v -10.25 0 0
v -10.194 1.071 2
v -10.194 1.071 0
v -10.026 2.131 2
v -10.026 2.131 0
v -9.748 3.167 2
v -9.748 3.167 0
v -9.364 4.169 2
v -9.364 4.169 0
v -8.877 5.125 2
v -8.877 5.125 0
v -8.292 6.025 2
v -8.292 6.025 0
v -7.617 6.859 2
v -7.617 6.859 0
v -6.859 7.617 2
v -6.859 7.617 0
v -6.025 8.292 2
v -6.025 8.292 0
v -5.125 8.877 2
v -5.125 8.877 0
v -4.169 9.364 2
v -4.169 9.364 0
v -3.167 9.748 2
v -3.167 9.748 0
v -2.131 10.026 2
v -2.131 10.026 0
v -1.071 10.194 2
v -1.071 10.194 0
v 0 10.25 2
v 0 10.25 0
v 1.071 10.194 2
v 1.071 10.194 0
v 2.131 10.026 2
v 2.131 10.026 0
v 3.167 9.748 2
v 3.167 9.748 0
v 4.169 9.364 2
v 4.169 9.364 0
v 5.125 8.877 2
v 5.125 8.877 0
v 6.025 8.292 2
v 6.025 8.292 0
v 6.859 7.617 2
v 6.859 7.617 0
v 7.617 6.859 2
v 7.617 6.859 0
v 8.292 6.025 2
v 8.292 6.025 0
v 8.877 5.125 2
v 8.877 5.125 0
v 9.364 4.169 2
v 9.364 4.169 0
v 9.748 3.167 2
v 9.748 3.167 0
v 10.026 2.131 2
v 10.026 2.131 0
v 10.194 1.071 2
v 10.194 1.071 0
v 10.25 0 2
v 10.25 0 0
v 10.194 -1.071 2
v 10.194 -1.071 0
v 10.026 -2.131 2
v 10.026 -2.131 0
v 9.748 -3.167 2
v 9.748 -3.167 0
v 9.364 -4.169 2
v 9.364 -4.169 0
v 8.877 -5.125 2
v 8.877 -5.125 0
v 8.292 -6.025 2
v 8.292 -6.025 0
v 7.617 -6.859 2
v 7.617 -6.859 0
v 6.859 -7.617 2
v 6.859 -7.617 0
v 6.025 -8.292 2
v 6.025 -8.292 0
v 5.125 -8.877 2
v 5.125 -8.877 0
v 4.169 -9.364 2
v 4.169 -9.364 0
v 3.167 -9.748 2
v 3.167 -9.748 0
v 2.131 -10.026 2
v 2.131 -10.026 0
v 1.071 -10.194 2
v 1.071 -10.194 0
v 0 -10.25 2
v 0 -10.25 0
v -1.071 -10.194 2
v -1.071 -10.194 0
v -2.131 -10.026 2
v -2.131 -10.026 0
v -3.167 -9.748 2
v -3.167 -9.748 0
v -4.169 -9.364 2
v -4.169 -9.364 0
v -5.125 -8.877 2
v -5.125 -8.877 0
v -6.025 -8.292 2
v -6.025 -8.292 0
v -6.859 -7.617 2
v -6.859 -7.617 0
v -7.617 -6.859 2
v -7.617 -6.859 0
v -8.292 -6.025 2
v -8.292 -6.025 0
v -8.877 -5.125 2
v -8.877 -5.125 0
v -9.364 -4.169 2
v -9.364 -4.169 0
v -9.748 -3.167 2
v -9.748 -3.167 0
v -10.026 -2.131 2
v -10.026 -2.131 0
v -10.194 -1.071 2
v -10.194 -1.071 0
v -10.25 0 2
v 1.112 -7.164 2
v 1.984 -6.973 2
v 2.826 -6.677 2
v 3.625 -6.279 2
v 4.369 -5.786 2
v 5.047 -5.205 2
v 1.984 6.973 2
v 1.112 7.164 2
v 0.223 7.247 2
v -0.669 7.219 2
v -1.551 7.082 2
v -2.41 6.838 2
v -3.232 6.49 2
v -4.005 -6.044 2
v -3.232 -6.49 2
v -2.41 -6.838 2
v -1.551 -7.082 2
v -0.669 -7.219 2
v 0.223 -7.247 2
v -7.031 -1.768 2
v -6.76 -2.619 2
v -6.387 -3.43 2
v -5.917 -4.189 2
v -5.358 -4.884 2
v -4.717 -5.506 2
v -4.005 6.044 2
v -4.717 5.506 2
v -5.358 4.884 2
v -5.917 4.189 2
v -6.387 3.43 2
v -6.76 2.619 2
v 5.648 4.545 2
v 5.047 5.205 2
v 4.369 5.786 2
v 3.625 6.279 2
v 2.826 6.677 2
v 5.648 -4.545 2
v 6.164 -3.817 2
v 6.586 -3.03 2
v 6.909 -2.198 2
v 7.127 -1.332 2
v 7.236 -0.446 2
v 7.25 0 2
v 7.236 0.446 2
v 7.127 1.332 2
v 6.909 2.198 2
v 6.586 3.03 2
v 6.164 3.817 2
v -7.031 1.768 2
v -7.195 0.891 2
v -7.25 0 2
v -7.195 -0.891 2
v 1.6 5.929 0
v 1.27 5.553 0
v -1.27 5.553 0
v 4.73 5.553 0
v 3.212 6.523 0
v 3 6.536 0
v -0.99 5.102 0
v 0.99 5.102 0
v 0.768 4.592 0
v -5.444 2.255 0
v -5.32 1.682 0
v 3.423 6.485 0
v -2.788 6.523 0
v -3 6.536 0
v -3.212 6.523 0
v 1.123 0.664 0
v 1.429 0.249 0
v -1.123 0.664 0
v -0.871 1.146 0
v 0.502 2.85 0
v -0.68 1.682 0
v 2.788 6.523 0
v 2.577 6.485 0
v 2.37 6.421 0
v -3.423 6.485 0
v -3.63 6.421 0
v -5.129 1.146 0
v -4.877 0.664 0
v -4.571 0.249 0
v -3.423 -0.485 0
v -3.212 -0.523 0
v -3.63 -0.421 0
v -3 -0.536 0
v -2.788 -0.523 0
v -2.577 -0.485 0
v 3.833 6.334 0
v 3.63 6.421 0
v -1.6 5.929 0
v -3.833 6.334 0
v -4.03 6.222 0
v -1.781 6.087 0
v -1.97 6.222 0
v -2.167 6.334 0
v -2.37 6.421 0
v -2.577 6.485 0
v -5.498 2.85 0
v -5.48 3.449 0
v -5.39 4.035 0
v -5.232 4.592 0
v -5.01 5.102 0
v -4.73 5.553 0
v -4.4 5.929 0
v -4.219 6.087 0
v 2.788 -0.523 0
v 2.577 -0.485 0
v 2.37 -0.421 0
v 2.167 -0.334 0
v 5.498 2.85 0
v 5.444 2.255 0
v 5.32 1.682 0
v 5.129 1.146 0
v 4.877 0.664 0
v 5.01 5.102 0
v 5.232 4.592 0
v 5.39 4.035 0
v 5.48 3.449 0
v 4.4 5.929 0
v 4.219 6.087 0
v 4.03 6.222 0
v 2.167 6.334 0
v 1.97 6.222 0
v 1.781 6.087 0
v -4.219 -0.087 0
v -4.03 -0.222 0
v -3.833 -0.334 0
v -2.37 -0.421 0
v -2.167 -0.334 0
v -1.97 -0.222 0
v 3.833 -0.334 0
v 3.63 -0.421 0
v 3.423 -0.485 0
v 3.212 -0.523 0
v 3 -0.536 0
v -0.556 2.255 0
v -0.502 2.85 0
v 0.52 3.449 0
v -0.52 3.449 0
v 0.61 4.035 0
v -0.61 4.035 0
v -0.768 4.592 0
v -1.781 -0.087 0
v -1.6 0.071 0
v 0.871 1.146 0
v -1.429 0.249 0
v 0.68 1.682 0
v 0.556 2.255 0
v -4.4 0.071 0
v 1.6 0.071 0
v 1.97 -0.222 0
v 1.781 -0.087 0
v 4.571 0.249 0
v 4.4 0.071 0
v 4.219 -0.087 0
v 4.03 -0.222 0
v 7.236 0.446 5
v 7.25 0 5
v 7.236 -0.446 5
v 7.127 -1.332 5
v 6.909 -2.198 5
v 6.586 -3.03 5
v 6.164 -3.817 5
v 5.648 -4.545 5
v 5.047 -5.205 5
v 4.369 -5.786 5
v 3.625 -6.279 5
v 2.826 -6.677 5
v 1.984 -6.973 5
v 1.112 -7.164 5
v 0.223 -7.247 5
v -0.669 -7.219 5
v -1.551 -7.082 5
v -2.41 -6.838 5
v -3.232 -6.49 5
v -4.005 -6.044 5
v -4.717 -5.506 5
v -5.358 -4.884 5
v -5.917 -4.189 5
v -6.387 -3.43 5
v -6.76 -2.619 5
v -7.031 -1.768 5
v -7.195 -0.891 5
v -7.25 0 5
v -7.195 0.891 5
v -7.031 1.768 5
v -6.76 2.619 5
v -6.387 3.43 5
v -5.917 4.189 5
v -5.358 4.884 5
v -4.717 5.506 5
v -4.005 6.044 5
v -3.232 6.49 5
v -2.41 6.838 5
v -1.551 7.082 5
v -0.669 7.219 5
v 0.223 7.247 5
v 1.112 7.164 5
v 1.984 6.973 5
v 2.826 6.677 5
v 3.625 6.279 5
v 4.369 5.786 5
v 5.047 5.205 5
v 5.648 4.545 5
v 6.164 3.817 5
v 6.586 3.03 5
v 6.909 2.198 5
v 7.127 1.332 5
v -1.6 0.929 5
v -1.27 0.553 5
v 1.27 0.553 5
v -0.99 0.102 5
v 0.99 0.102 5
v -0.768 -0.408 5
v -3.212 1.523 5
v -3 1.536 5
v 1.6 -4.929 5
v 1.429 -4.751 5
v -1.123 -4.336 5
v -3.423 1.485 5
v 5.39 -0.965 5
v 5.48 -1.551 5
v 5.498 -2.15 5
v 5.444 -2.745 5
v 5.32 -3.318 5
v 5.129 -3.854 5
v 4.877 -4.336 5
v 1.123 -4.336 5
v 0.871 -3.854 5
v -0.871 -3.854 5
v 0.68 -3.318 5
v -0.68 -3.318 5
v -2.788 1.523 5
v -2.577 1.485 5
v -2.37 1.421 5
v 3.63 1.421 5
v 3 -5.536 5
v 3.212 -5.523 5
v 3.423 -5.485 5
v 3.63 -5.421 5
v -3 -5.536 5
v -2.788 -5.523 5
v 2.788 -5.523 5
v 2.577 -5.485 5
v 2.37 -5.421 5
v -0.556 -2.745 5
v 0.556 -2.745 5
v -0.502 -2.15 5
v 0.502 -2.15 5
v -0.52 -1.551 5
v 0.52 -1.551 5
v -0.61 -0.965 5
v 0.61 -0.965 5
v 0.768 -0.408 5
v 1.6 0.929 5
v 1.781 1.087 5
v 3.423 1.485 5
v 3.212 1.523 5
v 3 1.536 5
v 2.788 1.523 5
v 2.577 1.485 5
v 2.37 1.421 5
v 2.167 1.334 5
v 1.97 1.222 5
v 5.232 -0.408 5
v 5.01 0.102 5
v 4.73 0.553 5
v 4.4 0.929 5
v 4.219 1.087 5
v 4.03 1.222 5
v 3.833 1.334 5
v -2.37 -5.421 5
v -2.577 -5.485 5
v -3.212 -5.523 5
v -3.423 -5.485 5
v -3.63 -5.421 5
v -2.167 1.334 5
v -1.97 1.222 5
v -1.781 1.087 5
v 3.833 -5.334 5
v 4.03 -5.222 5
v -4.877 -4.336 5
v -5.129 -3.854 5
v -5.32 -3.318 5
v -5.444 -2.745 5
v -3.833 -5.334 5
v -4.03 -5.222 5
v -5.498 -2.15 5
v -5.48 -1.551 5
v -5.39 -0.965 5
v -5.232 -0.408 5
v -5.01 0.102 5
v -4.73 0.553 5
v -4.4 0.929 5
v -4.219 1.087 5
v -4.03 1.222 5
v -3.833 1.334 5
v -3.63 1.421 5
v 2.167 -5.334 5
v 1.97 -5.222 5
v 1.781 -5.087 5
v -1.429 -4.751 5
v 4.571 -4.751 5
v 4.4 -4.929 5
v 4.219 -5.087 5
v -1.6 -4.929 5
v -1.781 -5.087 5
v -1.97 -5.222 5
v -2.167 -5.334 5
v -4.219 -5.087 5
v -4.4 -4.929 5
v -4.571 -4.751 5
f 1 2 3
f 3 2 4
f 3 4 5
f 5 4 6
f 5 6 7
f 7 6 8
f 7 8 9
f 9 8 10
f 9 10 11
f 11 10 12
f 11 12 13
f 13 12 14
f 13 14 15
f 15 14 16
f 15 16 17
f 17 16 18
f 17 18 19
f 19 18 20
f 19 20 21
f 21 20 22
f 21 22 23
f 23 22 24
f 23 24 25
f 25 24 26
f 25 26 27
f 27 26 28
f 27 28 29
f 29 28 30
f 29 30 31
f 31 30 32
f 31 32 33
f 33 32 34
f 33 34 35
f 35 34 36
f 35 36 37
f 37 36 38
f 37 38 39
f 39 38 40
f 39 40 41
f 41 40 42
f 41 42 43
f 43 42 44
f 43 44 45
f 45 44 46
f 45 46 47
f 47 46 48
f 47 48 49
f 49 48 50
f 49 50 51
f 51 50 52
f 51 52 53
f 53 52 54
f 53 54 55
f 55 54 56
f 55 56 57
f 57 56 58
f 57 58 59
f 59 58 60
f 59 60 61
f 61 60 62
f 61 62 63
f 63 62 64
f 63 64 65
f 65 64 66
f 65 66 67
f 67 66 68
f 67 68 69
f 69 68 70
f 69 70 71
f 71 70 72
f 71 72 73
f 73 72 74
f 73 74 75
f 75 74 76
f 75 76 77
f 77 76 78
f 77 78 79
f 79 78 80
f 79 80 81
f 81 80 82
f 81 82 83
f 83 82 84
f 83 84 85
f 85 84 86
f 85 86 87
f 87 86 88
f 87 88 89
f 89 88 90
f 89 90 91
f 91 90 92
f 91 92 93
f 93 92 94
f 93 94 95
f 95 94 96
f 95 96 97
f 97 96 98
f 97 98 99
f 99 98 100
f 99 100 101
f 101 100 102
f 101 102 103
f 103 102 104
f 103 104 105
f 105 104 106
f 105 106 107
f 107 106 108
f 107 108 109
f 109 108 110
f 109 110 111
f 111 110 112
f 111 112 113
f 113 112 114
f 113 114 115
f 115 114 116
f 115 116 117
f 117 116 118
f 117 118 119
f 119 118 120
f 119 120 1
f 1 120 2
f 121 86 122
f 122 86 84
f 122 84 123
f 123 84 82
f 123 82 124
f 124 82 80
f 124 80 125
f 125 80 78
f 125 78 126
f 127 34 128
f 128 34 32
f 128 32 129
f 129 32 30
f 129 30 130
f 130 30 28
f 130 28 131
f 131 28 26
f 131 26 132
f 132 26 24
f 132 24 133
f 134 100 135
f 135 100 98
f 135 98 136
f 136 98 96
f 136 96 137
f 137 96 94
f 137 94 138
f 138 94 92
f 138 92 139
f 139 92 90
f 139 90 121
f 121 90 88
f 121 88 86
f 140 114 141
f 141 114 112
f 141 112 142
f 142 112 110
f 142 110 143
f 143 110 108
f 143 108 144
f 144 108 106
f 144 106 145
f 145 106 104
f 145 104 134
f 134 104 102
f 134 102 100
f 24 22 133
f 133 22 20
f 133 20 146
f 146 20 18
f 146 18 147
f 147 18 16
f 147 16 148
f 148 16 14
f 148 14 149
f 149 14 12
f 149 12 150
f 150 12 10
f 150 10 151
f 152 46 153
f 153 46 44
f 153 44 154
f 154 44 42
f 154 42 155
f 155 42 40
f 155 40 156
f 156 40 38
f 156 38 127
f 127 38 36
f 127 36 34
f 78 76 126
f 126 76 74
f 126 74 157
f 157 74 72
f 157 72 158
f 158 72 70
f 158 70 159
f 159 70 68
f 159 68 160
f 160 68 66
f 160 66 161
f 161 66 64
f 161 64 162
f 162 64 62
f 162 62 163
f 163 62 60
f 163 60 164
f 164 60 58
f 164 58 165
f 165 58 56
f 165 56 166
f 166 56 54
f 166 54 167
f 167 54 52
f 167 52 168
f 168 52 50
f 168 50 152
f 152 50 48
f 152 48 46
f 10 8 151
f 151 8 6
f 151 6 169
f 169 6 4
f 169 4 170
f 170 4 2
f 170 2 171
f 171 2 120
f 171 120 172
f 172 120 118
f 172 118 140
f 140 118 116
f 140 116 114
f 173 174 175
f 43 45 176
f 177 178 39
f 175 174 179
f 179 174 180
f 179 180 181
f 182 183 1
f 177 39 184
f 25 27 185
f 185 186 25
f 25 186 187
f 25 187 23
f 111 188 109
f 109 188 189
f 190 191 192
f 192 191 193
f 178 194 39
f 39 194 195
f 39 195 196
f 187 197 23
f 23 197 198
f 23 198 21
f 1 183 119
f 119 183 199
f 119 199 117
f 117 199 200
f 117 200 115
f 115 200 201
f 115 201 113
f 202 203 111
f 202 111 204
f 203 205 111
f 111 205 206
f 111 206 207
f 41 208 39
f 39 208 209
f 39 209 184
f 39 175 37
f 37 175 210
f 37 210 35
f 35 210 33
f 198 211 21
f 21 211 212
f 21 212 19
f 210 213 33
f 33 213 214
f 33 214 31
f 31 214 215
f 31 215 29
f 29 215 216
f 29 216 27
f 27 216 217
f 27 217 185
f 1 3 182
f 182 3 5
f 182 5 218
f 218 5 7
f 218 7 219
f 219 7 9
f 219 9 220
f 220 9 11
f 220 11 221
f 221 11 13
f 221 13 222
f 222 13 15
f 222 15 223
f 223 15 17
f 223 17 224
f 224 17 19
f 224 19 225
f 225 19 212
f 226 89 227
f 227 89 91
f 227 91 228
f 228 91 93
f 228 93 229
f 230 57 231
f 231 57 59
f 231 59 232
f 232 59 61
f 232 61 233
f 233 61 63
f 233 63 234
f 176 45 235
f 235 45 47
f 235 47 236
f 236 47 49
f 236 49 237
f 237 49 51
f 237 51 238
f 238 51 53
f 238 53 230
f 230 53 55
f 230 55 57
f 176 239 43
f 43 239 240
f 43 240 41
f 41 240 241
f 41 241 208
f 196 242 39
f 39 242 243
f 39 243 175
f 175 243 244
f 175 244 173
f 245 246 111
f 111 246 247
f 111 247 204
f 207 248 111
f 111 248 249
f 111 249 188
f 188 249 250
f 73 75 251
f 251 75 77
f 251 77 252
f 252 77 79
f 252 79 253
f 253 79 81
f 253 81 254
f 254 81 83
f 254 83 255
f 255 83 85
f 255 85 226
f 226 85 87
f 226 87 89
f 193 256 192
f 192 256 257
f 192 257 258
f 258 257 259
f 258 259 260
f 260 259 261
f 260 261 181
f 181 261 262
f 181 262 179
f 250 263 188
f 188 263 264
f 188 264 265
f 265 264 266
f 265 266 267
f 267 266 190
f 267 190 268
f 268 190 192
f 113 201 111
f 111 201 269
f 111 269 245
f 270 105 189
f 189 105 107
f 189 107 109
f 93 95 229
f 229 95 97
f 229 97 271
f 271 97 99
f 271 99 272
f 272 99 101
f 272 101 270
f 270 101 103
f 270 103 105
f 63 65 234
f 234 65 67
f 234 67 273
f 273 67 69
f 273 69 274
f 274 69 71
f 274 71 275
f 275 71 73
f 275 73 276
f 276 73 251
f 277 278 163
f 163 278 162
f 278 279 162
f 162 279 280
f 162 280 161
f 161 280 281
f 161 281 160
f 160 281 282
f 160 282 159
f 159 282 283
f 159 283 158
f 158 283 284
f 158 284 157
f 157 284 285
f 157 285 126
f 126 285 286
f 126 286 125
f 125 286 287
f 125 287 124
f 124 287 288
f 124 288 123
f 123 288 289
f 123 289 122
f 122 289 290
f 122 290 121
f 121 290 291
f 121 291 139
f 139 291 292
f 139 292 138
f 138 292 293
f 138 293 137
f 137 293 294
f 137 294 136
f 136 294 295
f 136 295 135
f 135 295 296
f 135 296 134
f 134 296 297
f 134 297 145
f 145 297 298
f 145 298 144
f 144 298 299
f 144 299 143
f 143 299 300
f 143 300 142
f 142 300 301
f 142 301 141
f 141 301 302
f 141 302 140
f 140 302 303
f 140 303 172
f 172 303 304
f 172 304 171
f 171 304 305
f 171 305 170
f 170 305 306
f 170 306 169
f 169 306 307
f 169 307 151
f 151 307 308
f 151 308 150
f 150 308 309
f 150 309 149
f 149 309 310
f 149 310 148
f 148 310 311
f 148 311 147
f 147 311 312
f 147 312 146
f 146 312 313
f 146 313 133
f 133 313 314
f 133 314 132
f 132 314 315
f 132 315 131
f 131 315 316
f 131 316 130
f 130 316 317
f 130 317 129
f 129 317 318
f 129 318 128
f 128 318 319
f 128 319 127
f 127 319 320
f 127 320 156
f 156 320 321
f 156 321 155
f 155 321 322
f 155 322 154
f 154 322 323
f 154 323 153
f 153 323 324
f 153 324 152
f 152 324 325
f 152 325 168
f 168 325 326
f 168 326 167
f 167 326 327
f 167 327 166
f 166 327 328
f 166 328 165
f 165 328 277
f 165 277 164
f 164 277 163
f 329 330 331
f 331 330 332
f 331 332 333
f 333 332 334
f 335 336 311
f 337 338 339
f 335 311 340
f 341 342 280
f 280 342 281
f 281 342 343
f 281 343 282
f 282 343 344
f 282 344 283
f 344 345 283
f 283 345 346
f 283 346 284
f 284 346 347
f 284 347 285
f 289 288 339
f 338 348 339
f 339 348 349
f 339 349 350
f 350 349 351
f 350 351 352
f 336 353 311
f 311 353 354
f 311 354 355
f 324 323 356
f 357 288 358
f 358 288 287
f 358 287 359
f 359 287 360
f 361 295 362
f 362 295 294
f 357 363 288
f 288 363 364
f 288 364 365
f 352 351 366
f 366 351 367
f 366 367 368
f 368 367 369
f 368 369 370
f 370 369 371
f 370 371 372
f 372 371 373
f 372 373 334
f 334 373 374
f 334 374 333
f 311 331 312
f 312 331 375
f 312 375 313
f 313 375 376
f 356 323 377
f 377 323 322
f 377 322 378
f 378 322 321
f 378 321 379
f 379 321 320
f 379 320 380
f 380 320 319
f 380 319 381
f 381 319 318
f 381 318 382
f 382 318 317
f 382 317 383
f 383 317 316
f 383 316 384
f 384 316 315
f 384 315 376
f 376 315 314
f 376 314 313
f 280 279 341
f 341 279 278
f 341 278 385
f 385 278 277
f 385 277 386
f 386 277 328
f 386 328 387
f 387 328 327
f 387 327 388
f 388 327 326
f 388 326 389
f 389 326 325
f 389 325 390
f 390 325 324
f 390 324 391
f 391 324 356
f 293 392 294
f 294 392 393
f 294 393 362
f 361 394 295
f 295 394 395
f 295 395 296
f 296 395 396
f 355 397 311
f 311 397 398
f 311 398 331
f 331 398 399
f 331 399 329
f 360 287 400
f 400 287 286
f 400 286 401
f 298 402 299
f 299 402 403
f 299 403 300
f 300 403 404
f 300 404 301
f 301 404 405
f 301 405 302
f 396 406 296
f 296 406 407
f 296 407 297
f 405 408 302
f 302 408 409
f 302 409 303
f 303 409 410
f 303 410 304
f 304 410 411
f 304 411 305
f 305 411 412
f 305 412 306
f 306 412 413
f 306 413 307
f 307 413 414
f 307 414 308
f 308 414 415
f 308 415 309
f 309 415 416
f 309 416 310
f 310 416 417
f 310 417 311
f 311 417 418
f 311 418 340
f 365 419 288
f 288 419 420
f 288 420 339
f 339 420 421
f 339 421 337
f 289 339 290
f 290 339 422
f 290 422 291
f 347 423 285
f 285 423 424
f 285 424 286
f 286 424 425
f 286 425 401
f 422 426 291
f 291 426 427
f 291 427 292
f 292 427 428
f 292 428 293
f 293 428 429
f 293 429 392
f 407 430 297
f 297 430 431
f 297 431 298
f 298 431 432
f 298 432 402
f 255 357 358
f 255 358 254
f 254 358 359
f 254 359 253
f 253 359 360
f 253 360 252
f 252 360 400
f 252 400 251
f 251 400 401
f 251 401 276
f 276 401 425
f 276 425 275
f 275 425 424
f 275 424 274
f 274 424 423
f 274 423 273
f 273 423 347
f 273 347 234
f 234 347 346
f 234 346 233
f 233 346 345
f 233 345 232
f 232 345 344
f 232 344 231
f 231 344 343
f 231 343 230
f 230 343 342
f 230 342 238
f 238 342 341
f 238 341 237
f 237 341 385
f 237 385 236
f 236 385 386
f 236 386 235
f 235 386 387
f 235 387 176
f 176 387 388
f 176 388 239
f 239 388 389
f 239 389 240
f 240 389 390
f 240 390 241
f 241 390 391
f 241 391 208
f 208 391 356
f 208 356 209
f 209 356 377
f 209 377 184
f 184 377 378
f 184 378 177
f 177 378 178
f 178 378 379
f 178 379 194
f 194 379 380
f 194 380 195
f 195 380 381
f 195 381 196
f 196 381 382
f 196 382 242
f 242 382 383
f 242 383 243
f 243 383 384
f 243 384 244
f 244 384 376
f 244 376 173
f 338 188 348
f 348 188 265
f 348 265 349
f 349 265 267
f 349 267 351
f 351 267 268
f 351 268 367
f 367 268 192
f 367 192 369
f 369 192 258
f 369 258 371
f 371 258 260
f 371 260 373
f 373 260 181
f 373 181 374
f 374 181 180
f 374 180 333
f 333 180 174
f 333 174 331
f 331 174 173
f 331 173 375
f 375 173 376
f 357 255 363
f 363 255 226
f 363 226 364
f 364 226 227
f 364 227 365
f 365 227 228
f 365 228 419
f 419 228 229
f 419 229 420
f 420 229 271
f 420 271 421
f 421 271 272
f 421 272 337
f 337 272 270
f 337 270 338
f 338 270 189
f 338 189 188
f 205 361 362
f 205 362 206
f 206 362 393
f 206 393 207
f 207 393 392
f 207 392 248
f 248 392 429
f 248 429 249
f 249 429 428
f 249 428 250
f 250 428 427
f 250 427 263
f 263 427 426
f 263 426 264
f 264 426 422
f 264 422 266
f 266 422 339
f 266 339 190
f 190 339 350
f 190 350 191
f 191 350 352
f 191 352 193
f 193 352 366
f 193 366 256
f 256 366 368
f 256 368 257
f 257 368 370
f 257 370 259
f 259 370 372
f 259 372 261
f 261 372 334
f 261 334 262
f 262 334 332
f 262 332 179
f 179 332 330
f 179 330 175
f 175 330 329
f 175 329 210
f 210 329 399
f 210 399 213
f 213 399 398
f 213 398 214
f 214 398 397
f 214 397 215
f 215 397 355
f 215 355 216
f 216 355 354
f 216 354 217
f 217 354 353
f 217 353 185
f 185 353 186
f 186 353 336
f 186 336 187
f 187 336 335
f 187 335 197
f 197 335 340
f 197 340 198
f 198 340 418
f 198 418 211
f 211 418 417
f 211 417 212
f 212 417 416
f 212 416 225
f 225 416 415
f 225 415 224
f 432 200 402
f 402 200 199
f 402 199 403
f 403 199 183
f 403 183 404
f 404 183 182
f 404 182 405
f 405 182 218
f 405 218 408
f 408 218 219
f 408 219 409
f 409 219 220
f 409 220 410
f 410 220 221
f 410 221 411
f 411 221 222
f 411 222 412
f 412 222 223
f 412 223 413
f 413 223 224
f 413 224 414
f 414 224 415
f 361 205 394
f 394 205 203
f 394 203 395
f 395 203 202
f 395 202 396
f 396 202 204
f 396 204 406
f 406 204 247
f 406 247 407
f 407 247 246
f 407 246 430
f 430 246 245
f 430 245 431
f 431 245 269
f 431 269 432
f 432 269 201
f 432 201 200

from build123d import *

# Parameters (mm, degrees)
OUTER_SKETCH_R                = 10.25
OUTER_DEPTH                   = 2
INNER_SKETCH_R                = 7.25
INNER_DEPTH                   = 3
ODEBRAT_VYSUNUT_M2_DEPTH      = 15.746272134
ODEBRAT_VYSUNUT_M2_DEPTH_BACK = 15.746272134
SKICA8_R                      = 2.5


with BuildPart() as part:
    # Outer sketch → Outer (new body)
    with BuildSketch(Plane.XY):
        Circle(OUTER_SKETCH_R)
    extrude(amount=OUTER_DEPTH)

    # Inner sketch → Inner (add)
    with BuildSketch(Plane.XY.offset(2)):
        Circle(INNER_SKETCH_R)
    extrude(amount=INNER_DEPTH)

    # Skica8 → Odebrat vysunutím2 (cut, two sides: drawn at the far end of the back side and taken through both)
    with BuildSketch(Plane(origin=(0, -0.042117416, 2.457882584), x_dir=(1, 0, 0), z_dir=(0, -0.7071067811865476, 0.7071067811865476)).offset(-ODEBRAT_VYSUNUT_M2_DEPTH_BACK)):
        with Locations(Location((-3, 0.413116411, 0), (0, 0, 270))):
            Circle(SKICA8_R)
        with Locations(Location((3, 0.413116411, 0), (0, 0, 270))):
            Circle(SKICA8_R)
    extrude(amount=ODEBRAT_VYSUNUT_M2_DEPTH + ODEBRAT_VYSUNUT_M2_DEPTH_BACK, mode=Mode.SUBTRACT)


solid = part.part
